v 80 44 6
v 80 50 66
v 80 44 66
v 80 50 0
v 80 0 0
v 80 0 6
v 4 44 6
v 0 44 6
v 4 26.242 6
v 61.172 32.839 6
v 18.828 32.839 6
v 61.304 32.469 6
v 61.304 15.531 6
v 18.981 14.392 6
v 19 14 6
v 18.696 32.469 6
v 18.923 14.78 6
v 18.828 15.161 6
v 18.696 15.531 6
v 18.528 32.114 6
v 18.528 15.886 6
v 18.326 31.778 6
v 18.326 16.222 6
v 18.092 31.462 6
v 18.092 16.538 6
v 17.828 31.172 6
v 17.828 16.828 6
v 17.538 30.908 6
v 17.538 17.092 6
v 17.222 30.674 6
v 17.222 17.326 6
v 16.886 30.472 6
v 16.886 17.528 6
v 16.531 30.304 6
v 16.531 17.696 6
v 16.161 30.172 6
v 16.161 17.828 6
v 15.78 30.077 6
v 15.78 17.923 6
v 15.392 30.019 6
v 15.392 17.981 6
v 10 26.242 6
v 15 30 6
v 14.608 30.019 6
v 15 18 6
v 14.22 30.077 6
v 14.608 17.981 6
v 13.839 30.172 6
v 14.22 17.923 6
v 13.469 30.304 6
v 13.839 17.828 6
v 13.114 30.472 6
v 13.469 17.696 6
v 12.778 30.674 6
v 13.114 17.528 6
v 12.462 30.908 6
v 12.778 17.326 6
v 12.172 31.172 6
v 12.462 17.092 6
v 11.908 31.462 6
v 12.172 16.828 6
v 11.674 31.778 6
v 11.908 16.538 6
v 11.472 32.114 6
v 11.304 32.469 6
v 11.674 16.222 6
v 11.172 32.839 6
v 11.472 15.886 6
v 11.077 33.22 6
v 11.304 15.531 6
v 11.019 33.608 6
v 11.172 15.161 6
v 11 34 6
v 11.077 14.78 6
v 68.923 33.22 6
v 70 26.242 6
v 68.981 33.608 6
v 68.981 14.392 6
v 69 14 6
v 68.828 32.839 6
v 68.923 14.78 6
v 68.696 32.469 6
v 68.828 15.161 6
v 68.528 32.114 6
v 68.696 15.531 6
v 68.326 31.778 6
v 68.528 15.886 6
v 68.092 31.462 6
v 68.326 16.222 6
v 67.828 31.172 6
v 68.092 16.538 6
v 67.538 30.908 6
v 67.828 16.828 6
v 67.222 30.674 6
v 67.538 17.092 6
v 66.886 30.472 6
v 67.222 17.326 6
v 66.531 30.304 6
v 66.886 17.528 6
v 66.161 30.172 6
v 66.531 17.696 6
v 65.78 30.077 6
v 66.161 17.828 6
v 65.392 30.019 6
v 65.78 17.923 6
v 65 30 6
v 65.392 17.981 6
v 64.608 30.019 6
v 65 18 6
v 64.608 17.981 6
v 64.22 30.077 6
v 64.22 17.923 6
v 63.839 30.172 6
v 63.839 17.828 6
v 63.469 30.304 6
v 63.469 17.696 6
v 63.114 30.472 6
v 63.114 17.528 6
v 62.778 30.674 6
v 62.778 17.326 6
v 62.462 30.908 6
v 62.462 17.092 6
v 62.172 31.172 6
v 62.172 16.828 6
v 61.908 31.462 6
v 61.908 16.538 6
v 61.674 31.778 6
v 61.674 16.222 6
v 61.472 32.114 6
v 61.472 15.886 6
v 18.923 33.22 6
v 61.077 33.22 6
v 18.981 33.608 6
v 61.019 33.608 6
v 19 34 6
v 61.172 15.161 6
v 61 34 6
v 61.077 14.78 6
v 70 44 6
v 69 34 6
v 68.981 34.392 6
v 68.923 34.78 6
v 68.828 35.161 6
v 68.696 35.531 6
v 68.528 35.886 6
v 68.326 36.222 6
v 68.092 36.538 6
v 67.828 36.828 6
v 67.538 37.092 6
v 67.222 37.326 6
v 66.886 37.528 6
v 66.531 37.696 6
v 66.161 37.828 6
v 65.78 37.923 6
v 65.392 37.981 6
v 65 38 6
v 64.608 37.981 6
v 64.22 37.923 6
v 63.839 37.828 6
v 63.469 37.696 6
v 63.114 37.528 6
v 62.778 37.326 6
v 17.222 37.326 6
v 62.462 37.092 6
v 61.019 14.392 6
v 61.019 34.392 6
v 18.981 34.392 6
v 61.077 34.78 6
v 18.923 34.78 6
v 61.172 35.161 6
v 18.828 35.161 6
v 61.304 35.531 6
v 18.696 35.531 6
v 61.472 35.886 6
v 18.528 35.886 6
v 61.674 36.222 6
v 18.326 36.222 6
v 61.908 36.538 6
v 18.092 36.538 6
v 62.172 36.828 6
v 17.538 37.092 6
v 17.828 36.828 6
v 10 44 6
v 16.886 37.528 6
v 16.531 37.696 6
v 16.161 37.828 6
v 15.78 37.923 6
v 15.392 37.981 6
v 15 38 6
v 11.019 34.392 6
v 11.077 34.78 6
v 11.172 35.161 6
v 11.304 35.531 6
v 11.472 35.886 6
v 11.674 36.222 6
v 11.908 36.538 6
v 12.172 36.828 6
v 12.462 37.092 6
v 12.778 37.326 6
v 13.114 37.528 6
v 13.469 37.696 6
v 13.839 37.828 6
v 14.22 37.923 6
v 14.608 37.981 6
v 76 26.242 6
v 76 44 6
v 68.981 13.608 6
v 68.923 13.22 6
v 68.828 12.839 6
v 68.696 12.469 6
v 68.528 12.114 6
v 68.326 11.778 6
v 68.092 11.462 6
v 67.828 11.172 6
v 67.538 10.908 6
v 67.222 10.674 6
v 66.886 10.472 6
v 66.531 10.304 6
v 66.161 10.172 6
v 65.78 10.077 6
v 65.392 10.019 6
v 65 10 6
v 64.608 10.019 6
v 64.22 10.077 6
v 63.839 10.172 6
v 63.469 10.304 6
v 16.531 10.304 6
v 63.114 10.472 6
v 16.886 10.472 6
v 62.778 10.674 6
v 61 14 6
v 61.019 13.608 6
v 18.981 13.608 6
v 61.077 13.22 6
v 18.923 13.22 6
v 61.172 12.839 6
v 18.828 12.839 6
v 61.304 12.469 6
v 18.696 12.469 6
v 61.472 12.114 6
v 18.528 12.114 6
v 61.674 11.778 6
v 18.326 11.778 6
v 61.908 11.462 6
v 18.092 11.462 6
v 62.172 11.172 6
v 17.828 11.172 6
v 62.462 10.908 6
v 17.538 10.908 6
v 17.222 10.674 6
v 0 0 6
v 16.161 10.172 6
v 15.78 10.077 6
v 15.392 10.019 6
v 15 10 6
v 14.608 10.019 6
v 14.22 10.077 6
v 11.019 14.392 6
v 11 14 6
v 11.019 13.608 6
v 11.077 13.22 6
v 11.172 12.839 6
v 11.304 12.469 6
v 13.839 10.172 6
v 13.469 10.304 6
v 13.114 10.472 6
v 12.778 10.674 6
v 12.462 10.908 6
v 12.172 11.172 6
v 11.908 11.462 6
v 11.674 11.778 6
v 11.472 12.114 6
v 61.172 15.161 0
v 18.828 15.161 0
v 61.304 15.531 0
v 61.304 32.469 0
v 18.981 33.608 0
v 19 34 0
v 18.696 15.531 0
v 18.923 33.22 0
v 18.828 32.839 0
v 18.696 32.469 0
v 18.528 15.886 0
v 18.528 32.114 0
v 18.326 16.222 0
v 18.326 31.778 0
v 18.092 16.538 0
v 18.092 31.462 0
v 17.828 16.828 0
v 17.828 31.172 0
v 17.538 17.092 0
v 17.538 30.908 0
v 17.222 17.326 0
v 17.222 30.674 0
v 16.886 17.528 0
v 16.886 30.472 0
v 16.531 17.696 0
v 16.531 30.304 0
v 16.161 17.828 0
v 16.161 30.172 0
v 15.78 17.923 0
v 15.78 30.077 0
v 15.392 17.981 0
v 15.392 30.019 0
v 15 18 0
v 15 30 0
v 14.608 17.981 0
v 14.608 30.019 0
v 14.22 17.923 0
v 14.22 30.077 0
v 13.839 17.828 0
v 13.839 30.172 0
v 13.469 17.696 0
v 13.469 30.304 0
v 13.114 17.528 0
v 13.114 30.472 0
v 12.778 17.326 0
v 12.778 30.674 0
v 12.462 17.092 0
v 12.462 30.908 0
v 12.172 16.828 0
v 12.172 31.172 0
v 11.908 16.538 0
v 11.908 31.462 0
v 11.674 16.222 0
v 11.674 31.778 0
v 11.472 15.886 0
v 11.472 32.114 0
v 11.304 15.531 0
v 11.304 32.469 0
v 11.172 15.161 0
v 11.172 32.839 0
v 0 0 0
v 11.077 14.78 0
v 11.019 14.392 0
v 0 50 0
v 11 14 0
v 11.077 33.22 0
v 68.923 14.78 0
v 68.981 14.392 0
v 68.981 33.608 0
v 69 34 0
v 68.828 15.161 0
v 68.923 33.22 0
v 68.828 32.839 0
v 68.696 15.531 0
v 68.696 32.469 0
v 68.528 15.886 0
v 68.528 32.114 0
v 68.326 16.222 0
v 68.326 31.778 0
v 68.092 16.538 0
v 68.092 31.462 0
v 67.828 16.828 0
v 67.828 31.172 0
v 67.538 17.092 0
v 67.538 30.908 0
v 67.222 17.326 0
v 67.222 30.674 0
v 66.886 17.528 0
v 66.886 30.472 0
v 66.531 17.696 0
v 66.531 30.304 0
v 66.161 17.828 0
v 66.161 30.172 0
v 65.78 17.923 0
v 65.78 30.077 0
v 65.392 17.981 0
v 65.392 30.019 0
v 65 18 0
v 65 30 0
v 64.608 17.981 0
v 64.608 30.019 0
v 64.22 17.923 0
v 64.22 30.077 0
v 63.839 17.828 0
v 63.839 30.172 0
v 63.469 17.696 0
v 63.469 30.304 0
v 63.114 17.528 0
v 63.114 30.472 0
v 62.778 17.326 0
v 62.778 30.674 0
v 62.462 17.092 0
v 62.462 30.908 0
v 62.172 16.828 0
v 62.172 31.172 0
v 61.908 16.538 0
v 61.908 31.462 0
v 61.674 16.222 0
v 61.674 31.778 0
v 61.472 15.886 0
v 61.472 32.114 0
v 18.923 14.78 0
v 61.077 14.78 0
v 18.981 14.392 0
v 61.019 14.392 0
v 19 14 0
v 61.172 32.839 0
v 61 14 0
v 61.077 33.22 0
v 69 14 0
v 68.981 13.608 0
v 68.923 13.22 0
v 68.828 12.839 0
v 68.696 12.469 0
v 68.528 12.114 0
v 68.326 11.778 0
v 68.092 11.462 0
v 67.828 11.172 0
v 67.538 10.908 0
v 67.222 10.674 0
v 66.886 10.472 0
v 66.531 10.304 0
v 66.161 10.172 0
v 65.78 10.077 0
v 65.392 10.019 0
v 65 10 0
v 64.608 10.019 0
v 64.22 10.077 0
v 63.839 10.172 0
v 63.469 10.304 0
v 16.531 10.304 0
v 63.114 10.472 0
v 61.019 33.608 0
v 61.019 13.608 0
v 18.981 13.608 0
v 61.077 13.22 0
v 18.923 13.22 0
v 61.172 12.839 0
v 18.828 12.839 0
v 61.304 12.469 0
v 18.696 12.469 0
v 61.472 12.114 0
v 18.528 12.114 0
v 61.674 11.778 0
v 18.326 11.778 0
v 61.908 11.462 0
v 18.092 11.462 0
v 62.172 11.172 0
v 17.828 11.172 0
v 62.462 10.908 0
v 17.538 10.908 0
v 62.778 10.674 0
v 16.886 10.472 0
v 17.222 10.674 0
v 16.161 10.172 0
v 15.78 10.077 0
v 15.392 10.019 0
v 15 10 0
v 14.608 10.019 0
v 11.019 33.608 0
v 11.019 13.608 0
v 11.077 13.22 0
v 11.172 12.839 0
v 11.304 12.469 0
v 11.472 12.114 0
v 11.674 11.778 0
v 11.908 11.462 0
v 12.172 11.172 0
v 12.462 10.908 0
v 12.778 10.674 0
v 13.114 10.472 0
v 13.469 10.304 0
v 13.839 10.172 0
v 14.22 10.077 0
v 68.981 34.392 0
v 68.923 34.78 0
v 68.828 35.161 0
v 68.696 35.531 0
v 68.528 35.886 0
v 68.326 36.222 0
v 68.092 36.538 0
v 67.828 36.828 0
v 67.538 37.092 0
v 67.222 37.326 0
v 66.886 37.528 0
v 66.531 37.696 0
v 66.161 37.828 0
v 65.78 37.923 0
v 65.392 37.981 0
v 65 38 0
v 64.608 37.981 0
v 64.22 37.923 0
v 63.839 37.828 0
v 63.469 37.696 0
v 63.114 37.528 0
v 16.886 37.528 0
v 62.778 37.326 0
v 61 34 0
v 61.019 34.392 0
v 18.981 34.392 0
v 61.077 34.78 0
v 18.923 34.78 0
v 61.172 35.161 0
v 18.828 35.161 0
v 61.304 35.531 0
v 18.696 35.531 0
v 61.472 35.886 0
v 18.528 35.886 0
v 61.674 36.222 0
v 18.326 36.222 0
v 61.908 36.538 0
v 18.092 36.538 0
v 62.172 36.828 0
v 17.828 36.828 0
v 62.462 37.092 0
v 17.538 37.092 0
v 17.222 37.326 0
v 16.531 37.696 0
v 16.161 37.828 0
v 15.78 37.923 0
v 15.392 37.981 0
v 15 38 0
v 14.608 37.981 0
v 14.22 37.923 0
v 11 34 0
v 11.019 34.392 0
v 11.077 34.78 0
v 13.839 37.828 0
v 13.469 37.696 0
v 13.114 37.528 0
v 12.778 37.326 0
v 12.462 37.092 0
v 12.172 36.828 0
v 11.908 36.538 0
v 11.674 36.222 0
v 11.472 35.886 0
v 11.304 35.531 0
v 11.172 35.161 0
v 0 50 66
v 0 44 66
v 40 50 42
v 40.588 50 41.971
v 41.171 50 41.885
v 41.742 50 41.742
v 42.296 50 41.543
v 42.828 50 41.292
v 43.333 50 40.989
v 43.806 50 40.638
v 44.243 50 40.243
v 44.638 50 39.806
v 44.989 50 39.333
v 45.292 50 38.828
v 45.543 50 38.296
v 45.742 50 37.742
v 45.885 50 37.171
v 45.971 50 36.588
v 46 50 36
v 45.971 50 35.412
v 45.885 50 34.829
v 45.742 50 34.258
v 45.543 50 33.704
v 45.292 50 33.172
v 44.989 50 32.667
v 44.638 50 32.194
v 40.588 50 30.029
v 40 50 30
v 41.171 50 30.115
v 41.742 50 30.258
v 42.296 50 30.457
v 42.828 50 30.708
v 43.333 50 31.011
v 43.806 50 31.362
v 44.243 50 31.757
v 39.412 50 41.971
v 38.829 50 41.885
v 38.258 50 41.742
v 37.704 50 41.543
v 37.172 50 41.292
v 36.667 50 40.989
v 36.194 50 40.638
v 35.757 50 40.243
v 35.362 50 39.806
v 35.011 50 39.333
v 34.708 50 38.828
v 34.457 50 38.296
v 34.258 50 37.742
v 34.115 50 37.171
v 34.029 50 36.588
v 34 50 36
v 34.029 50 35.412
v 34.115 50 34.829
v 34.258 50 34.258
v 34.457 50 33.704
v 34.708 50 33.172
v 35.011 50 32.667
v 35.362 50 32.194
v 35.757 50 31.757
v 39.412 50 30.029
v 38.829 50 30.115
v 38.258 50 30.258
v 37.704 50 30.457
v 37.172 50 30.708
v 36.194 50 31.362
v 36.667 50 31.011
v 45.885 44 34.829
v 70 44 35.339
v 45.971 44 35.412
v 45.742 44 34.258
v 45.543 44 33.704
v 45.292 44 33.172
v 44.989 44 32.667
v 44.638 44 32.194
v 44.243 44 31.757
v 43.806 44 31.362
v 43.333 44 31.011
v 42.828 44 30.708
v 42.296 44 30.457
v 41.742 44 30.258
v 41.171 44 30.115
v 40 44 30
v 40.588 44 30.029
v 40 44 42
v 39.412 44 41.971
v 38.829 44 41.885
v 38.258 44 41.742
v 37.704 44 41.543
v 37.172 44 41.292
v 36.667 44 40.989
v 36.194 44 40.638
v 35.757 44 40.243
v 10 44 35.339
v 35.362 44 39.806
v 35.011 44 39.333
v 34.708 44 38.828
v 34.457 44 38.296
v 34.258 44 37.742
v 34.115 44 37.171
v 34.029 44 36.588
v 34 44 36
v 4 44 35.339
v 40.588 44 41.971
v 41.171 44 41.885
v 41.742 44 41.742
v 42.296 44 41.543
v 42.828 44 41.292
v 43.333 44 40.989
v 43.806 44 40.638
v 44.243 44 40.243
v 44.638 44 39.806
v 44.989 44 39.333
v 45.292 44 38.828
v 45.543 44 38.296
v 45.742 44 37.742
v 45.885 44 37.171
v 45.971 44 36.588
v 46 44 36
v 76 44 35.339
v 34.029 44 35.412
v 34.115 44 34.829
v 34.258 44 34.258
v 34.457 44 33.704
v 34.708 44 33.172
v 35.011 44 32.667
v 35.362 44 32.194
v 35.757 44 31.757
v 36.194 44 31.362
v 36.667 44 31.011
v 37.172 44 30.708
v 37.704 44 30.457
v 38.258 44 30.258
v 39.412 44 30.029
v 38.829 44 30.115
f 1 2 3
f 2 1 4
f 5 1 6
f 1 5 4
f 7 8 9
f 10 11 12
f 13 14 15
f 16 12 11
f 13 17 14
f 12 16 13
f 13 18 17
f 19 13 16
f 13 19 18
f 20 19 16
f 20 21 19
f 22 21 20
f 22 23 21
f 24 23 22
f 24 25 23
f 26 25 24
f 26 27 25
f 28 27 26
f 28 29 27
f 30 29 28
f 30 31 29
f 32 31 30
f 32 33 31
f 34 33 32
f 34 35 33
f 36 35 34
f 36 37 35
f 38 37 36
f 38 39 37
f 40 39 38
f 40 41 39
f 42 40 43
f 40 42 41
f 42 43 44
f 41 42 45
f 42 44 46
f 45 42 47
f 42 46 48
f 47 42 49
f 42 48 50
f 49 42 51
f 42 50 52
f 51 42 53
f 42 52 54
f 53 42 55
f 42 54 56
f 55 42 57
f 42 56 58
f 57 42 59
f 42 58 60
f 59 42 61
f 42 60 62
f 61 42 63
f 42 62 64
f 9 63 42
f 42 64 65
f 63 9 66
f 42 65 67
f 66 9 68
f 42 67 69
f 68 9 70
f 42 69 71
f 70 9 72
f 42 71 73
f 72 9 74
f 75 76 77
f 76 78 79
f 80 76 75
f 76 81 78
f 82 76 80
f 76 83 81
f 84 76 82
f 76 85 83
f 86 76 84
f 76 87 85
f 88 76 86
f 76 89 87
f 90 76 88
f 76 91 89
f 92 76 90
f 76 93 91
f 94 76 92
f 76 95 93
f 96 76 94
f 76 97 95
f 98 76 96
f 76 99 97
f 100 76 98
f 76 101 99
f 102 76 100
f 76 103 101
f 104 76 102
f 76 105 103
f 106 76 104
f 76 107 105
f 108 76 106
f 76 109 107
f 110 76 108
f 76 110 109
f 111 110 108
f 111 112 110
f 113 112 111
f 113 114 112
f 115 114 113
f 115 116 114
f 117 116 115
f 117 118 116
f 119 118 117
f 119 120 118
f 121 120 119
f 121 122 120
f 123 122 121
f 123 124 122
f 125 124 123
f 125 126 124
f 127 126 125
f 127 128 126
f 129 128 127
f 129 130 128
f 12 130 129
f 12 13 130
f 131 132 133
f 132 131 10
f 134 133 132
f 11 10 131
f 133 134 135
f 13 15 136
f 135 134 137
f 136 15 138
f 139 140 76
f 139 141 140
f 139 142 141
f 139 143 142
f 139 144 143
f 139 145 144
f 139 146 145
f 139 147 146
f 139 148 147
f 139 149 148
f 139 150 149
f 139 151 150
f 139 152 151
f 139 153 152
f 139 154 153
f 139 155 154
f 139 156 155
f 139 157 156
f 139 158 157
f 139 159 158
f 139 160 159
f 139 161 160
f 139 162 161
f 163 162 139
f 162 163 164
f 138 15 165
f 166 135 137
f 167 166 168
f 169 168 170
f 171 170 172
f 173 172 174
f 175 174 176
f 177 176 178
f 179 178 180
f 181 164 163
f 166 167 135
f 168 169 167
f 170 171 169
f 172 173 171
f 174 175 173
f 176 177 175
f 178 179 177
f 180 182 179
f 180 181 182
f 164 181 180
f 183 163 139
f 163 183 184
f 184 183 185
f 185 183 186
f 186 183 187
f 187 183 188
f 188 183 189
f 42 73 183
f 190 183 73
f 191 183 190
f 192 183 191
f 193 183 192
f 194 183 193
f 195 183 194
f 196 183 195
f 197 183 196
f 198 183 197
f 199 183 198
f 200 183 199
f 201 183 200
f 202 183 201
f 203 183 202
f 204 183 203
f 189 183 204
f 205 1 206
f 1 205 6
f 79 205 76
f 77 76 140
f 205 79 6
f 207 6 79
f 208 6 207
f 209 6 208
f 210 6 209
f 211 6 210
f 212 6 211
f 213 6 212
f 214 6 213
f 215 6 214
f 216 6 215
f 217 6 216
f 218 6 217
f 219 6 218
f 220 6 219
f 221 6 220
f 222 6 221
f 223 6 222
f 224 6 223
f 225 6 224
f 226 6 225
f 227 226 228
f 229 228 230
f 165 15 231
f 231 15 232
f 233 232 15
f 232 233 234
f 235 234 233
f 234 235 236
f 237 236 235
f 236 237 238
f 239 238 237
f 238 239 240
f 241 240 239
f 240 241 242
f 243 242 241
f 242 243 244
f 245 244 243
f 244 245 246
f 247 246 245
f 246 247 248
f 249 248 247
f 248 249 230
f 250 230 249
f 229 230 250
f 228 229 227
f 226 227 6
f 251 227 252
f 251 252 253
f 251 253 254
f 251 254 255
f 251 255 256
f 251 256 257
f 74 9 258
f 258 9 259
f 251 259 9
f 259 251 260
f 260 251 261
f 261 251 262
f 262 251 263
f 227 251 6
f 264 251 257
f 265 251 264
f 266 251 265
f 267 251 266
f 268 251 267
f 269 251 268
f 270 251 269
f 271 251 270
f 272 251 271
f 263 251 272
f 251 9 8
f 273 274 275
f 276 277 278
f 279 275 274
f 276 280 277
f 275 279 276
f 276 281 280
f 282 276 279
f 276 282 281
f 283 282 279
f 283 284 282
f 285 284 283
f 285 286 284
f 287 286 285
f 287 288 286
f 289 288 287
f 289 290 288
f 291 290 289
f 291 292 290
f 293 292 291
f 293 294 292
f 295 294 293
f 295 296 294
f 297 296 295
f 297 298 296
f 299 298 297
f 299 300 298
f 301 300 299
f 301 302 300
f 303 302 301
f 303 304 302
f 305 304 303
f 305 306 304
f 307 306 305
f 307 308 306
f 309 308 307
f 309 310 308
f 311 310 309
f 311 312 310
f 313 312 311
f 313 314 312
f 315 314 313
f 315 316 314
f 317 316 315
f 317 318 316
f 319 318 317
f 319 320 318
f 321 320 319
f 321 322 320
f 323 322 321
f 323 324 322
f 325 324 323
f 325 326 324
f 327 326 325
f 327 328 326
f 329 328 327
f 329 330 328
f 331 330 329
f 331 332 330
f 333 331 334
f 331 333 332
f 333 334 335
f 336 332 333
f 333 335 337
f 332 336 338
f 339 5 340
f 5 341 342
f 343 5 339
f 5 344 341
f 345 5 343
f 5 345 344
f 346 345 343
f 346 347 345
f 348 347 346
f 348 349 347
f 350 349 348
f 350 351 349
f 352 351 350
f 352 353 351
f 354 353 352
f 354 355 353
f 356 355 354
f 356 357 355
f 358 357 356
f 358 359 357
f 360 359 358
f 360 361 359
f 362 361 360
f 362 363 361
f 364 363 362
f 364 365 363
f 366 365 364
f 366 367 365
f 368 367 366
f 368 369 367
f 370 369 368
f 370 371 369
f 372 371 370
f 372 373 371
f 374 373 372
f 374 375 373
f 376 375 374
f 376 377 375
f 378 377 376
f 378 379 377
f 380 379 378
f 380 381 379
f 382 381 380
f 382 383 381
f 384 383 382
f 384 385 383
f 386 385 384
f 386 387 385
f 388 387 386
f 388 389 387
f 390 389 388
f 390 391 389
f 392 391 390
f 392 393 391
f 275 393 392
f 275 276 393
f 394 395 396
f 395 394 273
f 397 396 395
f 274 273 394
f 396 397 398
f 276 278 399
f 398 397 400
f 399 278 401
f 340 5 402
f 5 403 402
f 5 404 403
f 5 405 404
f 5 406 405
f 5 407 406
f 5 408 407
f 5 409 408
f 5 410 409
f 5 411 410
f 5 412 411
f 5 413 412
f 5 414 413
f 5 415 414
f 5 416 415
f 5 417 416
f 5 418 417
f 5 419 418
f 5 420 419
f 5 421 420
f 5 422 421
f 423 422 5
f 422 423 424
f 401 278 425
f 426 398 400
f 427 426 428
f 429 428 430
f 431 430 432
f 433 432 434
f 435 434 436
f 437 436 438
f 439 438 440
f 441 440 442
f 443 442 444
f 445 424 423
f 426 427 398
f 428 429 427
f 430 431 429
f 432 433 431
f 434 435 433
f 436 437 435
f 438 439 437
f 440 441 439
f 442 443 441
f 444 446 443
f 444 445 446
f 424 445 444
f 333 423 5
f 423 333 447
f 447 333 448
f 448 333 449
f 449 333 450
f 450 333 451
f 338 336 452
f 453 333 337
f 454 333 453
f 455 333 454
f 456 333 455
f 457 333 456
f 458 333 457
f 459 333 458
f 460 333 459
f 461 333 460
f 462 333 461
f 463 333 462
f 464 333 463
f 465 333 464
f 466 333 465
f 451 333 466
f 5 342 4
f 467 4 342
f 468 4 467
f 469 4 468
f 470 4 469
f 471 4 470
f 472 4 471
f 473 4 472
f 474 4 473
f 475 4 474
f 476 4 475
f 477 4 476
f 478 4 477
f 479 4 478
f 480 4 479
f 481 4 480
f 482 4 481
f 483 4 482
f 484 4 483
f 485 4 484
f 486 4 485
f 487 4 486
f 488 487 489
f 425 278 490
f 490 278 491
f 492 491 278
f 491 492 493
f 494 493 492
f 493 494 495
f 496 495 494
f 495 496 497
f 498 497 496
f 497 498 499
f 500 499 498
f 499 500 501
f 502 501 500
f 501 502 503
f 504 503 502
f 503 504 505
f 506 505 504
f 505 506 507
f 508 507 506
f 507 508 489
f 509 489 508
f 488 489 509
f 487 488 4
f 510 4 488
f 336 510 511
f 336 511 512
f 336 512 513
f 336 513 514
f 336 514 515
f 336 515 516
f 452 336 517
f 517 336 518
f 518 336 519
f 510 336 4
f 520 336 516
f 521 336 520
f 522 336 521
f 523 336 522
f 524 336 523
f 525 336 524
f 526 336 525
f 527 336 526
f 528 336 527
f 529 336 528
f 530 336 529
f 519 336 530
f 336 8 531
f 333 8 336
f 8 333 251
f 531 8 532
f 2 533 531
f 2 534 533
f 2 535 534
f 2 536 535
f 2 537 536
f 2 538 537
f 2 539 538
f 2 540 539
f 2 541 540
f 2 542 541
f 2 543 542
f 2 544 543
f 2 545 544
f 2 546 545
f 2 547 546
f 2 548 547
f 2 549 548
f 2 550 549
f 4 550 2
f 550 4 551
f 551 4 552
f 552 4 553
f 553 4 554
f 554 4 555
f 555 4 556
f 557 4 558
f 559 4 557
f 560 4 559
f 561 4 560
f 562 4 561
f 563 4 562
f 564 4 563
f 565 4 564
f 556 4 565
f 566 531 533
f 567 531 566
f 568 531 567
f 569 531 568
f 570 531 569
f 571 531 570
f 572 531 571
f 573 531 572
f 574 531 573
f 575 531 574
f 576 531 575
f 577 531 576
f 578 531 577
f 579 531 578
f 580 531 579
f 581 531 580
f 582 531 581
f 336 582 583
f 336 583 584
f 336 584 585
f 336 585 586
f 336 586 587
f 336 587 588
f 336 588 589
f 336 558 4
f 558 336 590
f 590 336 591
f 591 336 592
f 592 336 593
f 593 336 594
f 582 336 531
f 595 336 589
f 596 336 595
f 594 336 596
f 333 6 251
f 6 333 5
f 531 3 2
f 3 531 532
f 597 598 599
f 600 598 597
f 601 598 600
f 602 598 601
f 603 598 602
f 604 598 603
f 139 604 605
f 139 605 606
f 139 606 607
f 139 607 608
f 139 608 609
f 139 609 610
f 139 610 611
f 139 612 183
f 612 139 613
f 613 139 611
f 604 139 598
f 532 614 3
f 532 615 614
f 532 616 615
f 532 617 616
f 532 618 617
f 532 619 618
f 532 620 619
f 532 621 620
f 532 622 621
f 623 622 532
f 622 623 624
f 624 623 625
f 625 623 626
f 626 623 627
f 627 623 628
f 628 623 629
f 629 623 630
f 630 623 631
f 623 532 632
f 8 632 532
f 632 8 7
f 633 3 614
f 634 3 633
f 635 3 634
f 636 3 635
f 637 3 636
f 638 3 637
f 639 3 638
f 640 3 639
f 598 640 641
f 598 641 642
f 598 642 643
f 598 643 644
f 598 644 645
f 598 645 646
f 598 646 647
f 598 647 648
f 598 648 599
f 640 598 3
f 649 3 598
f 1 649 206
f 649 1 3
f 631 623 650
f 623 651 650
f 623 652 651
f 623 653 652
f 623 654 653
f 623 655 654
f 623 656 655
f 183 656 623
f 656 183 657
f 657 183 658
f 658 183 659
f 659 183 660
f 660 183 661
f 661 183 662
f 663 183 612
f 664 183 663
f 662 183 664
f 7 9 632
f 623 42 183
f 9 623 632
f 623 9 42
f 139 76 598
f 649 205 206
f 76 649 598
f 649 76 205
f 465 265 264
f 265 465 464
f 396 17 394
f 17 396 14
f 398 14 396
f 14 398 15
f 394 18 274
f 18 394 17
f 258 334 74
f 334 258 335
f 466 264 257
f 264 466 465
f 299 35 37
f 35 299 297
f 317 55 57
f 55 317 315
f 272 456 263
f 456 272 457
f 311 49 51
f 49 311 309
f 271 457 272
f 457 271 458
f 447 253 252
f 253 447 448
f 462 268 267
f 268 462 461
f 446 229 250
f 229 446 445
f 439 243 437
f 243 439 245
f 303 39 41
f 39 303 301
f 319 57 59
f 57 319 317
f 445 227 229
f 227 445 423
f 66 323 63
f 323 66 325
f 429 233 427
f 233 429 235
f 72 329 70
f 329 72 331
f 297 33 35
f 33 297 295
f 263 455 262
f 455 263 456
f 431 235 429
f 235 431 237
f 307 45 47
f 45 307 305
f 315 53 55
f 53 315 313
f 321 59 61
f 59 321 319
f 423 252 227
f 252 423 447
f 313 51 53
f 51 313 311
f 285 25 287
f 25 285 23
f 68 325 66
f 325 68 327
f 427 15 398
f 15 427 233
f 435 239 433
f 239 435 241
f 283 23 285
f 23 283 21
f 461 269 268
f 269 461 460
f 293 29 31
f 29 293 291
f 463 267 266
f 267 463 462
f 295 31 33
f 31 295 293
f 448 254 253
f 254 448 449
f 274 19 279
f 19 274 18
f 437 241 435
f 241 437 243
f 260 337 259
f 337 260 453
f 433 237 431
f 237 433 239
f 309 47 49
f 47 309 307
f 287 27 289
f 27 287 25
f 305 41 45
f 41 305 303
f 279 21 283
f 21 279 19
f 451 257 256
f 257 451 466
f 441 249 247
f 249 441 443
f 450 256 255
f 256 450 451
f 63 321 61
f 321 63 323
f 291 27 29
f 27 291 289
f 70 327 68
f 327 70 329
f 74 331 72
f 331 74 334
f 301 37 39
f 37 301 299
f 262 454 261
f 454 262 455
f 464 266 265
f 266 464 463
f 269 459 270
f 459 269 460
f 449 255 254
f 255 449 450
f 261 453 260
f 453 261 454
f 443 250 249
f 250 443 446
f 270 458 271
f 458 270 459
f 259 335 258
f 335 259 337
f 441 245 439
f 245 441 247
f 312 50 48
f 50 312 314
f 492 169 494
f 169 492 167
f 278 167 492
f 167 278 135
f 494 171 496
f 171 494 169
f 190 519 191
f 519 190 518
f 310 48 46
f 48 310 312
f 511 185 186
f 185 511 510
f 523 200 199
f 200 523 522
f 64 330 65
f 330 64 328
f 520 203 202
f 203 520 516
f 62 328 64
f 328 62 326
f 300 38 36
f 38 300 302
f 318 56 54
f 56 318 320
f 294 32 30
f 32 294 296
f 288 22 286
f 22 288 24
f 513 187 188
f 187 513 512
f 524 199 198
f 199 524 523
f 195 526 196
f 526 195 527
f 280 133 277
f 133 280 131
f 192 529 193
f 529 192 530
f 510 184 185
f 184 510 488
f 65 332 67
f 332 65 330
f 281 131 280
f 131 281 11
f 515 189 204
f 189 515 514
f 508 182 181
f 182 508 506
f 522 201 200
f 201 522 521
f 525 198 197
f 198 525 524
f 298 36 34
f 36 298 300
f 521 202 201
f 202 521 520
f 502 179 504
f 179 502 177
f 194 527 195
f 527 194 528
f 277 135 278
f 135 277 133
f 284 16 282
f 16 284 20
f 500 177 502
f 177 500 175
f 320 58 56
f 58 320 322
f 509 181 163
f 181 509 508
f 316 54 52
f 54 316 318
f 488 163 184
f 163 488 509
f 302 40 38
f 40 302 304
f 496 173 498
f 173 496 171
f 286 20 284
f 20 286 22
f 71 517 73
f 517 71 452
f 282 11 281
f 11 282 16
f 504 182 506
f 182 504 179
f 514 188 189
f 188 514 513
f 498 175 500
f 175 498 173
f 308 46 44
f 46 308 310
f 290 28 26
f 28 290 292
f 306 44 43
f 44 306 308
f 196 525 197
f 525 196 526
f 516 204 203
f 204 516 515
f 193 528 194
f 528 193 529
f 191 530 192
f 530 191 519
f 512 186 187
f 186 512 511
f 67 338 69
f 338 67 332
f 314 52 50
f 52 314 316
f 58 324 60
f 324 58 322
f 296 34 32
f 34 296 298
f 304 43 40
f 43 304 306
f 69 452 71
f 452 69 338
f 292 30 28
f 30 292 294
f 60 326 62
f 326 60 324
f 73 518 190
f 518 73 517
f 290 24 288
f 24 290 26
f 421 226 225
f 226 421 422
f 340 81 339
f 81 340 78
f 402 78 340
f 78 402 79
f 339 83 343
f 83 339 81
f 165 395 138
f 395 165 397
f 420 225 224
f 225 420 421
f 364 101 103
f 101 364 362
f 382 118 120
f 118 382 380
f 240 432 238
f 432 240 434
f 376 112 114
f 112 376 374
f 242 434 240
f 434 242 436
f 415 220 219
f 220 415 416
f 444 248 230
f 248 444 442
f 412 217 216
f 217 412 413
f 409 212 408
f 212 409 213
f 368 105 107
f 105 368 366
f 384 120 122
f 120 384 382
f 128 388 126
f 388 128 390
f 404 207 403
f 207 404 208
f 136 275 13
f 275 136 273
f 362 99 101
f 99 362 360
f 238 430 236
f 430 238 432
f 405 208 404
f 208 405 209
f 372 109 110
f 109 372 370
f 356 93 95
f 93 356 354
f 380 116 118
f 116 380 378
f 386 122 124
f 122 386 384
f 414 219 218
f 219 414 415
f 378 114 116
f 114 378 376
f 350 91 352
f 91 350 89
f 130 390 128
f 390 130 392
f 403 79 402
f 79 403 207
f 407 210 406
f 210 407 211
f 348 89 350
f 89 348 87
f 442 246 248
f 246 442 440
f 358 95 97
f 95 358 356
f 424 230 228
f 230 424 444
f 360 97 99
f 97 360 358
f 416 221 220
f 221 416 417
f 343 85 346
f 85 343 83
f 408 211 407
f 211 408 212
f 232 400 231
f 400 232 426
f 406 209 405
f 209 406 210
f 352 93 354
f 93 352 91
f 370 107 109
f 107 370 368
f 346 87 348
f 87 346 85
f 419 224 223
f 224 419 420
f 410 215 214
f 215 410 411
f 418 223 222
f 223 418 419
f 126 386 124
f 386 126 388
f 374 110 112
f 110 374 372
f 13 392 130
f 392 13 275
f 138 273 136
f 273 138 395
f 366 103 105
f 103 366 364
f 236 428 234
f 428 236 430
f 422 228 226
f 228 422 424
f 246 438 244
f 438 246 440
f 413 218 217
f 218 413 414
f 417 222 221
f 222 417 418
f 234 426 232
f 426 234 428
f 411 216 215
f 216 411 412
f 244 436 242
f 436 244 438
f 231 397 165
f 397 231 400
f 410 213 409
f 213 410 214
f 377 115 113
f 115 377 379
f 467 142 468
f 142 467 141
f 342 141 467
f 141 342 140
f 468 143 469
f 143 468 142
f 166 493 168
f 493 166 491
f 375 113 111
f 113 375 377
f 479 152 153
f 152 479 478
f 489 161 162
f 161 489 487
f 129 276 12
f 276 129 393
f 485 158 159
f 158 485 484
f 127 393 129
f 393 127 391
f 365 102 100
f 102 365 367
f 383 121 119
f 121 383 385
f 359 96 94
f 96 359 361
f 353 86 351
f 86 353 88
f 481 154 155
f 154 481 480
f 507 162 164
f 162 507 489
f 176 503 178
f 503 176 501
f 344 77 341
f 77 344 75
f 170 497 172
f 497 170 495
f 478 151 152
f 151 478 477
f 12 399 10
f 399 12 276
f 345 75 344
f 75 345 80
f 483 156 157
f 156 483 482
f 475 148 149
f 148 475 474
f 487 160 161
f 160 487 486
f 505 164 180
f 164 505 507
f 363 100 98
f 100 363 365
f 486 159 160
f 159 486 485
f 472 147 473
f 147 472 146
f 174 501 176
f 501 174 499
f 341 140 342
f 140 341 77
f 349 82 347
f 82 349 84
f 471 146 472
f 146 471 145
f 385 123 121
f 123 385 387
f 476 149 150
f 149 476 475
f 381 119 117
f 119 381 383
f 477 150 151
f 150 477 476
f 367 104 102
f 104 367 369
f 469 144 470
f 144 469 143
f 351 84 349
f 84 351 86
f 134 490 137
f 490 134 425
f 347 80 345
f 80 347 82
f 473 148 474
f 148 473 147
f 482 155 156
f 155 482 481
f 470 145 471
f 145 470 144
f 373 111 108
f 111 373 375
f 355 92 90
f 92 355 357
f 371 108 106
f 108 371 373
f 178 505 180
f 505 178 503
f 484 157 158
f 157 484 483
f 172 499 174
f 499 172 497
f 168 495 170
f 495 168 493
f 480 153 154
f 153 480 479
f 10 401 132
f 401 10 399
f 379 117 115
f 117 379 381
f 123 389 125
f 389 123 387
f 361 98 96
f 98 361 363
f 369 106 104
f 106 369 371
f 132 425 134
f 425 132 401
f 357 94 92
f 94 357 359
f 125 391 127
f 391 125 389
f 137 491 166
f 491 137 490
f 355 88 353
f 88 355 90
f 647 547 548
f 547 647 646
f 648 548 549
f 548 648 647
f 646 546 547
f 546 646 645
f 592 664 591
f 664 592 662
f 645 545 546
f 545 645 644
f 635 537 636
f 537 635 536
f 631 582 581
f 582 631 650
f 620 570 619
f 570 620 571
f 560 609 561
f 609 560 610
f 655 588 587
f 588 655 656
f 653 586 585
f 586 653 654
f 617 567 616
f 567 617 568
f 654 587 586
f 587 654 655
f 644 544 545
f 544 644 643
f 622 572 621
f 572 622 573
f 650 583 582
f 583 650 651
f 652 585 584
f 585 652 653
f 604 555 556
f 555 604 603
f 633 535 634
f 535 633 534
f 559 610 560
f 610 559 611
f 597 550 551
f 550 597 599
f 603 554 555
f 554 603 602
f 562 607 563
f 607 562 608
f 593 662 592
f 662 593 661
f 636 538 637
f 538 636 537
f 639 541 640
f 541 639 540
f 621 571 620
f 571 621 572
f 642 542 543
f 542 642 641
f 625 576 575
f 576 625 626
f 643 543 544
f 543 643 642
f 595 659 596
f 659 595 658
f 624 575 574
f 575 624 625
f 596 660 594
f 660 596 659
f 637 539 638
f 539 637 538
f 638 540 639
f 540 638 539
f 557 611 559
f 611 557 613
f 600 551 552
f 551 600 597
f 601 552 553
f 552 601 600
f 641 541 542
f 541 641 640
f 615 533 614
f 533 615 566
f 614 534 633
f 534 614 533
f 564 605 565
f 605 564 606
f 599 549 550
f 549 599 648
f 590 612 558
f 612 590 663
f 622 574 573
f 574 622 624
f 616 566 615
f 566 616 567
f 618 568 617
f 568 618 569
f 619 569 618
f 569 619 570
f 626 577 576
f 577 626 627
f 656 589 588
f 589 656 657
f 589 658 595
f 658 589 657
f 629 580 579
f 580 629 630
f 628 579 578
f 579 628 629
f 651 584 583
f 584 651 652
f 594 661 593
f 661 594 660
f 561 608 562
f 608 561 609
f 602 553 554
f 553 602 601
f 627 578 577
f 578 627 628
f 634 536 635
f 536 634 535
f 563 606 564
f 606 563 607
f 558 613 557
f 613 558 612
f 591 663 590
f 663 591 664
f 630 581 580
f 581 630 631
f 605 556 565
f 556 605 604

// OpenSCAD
// @main_component L-shaped mounting bracket

// Required dimensions in millimetres
// @param min=60 max=120 step=5 label=Base width
base_width = 80;
// @param min=35 max=80 step=5 label=Base depth
base_depth = 50;
// @param min=40 max=90 step=5 label=Vertical height
vertical_height = 60;
// @param min=4 max=10 step=1 label=Plate thickness
plate_thickness = 6;

base_hole_diameter = 8;
vertical_hole_diameter = 12;
wall_y = base_depth - plate_thickness;
vertical_hole_z = plate_thickness + vertical_height / 2;

rib_thickness = 6;
rib_run = 18;
rib_height = 30;
rib_left_x = 4;
rib_right_x = base_width - 4 - rib_thickness;

// Positive embedding removes face-only contacts at CSG junctions.
embed = 0.4;
$fn = 64;

// Closed 2D right-triangle profile, linearly extruded to a 6 mm rib.
// Local profile X maps to global Y, profile Y maps to global Z,
// and extrusion Z maps to global X after rotation.
module gusset_rib(x0) {
    translate([
        x0,
        wall_y - rib_run,
        plate_thickness - embed
    ])
        rotate([90, 0, 90])
            linear_extrude(height = rib_thickness, convexity = 4)
                polygon(points = [
                    [0, 0],
                    [rib_run + embed, 0],
                    [rib_run + embed, rib_height + embed]
                ]);
}

module bracket_body() {
    union() {
        // Exact 80 x 50 x 6 mm base envelope.
        cube([base_width, base_depth, plate_thickness]);

        // The wall embeds 0.4 mm into the base and ends at exact Z = 66 mm.
        translate([0, wall_y, plate_thickness - embed])
            cube([
                base_width,
                plate_thickness,
                vertical_height + embed
            ]);

        // Symmetric integral reinforcing ribs; each embeds into base and wall.
        gusset_rib(rib_left_x);
        gusset_rib(rib_right_x);
    }
}

// Force evaluation of one closed CSG result before STL tessellation.
render(convexity = 10)
difference() {
    bracket_body();

    // Four diameter-8 mounting holes through the horizontal plate.
    for (x = [15, base_width - 15])
        for (y = [14, 34])
            translate([x, y, -1])
                cylinder(d = base_hole_diameter, h = plate_thickness + 2);

    // One diameter-12 center hole through the vertical plate along Y.
    translate([base_width / 2, base_depth + 1, vertical_hole_z])
        rotate([90, 0, 0])
            cylinder(d = vertical_hole_diameter, h = plate_thickness + 2);
}
